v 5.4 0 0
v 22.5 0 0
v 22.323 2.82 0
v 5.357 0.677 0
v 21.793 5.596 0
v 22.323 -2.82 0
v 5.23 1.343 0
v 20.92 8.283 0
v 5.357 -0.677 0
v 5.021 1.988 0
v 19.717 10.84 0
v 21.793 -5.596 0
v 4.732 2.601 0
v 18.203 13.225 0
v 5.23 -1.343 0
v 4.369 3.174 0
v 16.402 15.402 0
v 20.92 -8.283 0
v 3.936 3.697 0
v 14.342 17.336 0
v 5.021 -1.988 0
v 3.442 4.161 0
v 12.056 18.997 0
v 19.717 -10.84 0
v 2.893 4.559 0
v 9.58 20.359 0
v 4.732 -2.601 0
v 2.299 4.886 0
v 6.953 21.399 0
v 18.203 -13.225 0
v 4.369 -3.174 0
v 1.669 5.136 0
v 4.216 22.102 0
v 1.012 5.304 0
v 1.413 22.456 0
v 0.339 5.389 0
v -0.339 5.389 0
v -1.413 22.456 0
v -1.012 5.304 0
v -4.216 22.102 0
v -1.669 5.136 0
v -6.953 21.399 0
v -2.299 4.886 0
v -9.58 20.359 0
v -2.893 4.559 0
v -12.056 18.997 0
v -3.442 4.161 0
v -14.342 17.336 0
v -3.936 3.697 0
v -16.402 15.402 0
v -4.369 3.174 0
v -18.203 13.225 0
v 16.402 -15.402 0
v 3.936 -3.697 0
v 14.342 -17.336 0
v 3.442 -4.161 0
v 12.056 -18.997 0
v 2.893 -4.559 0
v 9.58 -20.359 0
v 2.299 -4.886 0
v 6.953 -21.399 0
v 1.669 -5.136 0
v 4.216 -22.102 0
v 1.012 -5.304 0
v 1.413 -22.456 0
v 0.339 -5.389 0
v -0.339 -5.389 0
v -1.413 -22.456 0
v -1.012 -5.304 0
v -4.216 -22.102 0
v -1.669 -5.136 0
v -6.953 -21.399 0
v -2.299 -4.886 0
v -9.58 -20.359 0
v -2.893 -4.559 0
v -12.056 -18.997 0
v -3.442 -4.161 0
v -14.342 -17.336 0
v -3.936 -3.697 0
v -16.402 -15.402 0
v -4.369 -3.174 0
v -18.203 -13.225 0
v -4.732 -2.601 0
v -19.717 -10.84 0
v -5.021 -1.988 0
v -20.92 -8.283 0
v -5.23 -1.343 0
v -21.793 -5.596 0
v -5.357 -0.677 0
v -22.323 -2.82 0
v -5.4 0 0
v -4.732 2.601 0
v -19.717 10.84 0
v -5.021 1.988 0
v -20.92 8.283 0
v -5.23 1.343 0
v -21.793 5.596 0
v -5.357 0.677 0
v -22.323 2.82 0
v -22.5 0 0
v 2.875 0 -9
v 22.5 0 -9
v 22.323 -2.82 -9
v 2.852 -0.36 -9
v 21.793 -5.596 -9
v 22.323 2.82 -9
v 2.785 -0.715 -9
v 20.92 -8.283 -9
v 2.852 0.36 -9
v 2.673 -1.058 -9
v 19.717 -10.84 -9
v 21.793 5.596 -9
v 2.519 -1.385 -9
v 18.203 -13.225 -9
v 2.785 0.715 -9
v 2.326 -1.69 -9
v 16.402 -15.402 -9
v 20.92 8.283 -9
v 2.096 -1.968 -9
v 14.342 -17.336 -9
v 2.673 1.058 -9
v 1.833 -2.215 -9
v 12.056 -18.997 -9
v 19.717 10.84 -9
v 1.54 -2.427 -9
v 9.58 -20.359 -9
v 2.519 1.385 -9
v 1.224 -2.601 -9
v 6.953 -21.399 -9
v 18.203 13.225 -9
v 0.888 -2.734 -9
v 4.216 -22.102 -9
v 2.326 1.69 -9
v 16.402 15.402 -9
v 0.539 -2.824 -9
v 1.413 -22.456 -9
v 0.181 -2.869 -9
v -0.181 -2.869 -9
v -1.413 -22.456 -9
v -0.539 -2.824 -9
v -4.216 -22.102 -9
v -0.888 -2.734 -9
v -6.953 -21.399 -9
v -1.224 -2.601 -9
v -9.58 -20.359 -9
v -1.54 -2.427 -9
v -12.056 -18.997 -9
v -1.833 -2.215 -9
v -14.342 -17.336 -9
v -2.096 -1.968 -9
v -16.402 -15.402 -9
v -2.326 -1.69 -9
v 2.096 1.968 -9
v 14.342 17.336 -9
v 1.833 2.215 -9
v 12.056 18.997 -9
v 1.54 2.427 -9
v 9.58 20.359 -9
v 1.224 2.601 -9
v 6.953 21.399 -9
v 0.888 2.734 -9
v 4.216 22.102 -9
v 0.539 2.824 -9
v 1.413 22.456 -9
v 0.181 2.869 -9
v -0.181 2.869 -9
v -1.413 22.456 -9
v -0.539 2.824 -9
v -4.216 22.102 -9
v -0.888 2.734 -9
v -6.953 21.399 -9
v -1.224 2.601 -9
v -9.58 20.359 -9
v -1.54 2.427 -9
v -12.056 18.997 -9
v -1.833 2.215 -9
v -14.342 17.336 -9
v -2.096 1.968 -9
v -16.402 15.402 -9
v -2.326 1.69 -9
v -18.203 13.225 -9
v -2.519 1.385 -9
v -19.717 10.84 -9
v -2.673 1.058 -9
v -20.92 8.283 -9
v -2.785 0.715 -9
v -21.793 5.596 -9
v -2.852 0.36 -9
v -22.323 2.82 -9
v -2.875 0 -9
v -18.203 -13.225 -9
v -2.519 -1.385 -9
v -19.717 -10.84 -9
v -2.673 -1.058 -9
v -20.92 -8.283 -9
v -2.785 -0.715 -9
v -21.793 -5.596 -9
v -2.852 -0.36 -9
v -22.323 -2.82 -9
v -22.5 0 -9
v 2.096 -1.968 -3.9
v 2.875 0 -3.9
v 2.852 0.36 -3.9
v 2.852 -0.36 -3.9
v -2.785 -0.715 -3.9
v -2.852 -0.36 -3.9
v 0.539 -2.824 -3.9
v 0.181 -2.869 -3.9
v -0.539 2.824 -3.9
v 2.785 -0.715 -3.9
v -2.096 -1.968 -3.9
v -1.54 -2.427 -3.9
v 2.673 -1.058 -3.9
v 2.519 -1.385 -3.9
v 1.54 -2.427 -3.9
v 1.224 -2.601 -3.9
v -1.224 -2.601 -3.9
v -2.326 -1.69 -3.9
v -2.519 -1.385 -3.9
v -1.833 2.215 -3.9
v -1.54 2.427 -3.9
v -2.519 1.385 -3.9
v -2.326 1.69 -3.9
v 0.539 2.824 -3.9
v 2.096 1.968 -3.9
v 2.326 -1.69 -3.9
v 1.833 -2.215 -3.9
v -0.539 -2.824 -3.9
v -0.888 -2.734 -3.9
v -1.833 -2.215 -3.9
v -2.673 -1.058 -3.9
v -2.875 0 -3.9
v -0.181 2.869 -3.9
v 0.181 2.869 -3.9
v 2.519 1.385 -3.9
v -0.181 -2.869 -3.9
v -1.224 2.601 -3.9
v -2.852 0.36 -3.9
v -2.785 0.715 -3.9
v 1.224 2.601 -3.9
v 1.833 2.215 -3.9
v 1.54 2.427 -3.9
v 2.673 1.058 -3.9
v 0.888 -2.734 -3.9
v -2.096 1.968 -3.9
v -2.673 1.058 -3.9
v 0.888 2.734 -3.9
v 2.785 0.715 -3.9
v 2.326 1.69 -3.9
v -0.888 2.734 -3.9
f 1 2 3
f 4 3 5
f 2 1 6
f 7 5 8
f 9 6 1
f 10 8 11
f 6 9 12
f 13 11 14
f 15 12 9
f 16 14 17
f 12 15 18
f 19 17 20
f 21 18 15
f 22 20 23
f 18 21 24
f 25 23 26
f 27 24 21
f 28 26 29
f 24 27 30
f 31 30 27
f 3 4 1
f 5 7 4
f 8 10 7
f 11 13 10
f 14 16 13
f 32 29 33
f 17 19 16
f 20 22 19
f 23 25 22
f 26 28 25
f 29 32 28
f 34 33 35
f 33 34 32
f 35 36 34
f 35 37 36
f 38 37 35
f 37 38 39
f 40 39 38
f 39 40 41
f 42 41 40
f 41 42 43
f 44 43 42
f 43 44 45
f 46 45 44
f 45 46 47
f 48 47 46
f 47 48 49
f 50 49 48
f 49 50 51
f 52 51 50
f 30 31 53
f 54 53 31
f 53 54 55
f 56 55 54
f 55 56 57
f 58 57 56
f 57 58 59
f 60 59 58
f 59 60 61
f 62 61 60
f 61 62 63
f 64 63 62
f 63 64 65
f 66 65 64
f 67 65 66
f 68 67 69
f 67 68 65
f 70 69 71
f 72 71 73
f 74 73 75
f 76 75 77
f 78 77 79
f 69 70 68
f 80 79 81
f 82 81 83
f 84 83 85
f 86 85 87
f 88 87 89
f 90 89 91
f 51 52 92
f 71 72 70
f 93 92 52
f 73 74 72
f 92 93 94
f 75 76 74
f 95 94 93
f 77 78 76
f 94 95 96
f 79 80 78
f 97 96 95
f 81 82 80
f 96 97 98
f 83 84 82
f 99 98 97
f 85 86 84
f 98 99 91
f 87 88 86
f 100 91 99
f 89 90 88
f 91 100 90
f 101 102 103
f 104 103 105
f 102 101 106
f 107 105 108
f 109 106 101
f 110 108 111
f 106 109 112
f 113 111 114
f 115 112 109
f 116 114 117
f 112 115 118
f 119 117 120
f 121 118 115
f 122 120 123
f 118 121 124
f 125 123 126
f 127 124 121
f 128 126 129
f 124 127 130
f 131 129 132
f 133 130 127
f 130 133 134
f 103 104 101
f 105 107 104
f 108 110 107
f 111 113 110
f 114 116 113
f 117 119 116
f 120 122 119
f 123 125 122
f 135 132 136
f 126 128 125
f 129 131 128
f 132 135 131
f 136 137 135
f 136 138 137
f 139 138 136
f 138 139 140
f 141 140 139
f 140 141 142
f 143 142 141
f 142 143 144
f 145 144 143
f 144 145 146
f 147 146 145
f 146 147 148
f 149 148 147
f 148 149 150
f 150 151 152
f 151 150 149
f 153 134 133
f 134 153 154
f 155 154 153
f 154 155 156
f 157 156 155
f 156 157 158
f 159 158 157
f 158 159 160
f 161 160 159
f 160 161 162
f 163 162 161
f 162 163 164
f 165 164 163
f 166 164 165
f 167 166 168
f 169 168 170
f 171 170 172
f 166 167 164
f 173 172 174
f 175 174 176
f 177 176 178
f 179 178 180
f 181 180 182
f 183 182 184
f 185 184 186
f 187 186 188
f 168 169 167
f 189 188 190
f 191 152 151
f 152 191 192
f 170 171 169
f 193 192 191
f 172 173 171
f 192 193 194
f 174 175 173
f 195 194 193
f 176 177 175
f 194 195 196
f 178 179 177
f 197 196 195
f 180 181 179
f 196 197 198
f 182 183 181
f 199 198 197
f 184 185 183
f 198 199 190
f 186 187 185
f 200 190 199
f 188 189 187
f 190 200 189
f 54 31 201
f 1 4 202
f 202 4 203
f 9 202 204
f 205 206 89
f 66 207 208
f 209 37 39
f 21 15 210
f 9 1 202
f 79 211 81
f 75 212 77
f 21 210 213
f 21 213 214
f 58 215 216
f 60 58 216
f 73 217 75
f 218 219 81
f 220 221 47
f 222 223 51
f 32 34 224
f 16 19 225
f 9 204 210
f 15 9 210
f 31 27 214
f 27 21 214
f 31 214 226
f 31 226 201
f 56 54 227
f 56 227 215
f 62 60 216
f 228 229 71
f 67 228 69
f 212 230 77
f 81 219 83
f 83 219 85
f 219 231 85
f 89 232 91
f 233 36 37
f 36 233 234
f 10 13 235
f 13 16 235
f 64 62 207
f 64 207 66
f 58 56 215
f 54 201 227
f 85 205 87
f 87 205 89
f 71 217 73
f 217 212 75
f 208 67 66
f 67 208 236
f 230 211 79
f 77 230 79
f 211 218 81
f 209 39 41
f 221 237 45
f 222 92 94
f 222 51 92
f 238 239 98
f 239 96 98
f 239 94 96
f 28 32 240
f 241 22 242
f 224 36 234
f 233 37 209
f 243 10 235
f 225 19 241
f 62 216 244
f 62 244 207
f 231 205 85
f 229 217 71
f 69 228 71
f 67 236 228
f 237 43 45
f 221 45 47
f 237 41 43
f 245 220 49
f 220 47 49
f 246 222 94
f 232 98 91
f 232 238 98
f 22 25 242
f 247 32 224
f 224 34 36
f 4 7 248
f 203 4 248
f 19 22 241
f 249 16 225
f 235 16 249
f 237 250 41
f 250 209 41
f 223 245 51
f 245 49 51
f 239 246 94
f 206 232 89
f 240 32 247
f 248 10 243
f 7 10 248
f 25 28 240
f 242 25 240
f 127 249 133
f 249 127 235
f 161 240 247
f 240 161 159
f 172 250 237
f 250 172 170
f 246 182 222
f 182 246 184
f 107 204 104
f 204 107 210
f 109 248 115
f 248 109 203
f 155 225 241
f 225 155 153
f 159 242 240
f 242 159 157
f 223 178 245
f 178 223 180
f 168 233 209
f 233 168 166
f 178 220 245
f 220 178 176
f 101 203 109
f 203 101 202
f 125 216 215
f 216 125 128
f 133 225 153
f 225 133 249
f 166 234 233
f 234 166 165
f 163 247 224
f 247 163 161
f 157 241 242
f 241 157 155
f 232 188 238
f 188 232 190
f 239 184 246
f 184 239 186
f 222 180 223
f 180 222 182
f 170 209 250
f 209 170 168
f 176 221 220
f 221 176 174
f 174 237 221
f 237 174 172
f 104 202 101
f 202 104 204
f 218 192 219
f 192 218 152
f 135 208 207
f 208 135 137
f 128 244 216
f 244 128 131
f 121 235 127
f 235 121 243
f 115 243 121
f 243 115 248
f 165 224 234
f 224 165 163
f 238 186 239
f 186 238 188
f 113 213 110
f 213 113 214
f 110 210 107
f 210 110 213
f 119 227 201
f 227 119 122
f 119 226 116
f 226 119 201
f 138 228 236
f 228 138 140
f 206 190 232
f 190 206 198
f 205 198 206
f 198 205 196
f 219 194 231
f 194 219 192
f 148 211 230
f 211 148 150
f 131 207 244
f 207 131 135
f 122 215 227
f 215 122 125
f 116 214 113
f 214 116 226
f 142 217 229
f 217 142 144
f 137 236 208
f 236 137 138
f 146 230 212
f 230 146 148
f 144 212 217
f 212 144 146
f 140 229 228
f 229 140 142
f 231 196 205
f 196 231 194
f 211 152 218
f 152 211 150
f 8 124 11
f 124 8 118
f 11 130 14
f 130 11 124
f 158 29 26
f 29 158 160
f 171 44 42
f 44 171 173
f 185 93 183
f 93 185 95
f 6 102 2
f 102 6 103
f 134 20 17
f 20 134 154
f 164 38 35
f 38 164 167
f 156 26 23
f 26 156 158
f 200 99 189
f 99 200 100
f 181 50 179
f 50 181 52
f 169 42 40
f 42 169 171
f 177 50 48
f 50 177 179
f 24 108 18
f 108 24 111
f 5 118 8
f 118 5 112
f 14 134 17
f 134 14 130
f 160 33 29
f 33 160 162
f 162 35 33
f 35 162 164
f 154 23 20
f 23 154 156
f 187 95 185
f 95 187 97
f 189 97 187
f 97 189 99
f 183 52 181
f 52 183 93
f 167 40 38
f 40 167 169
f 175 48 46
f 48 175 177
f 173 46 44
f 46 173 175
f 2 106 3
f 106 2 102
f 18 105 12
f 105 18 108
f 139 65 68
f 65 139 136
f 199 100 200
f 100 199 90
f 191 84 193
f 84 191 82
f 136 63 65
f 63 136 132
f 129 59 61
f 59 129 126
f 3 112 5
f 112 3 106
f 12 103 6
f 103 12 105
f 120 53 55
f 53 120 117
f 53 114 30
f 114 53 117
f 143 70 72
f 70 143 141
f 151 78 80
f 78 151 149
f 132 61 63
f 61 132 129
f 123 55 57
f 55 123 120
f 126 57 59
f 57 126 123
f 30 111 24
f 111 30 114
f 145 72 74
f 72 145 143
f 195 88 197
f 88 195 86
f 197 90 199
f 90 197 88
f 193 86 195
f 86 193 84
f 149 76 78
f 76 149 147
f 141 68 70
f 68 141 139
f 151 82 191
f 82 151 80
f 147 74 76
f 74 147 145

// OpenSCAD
$fn = 50;


difference() {
	union() {
		translate(v = [0, 0, -9.0000000000]) {
			cylinder(h = 9, r = 22.5000000000);
		}
	}
	union() {
		translate(v = [0, 0, 0]) {
			rotate(a = [0, 0, 0]) {
				difference() {
					union() {
						translate(v = [0, 0, -9.0000000000]) {
							cylinder(h = 9, r = 2.6000000000);
						}
						translate(v = [0, 0, -3.9000000000]) {
							cylinder(h = 3.9000000000, r1 = 2.8750000000, r2 = 5.4000000000);
						}
						translate(v = [0, 0, -9.0000000000]) {
							cylinder(h = 9, r = 2.8750000000);
						}
						translate(v = [0, 0, -9.0000000000]) {
							cylinder(h = 9, r = 2.6000000000);
						}
					}
					union();
				}
			}
		}
	}
}
